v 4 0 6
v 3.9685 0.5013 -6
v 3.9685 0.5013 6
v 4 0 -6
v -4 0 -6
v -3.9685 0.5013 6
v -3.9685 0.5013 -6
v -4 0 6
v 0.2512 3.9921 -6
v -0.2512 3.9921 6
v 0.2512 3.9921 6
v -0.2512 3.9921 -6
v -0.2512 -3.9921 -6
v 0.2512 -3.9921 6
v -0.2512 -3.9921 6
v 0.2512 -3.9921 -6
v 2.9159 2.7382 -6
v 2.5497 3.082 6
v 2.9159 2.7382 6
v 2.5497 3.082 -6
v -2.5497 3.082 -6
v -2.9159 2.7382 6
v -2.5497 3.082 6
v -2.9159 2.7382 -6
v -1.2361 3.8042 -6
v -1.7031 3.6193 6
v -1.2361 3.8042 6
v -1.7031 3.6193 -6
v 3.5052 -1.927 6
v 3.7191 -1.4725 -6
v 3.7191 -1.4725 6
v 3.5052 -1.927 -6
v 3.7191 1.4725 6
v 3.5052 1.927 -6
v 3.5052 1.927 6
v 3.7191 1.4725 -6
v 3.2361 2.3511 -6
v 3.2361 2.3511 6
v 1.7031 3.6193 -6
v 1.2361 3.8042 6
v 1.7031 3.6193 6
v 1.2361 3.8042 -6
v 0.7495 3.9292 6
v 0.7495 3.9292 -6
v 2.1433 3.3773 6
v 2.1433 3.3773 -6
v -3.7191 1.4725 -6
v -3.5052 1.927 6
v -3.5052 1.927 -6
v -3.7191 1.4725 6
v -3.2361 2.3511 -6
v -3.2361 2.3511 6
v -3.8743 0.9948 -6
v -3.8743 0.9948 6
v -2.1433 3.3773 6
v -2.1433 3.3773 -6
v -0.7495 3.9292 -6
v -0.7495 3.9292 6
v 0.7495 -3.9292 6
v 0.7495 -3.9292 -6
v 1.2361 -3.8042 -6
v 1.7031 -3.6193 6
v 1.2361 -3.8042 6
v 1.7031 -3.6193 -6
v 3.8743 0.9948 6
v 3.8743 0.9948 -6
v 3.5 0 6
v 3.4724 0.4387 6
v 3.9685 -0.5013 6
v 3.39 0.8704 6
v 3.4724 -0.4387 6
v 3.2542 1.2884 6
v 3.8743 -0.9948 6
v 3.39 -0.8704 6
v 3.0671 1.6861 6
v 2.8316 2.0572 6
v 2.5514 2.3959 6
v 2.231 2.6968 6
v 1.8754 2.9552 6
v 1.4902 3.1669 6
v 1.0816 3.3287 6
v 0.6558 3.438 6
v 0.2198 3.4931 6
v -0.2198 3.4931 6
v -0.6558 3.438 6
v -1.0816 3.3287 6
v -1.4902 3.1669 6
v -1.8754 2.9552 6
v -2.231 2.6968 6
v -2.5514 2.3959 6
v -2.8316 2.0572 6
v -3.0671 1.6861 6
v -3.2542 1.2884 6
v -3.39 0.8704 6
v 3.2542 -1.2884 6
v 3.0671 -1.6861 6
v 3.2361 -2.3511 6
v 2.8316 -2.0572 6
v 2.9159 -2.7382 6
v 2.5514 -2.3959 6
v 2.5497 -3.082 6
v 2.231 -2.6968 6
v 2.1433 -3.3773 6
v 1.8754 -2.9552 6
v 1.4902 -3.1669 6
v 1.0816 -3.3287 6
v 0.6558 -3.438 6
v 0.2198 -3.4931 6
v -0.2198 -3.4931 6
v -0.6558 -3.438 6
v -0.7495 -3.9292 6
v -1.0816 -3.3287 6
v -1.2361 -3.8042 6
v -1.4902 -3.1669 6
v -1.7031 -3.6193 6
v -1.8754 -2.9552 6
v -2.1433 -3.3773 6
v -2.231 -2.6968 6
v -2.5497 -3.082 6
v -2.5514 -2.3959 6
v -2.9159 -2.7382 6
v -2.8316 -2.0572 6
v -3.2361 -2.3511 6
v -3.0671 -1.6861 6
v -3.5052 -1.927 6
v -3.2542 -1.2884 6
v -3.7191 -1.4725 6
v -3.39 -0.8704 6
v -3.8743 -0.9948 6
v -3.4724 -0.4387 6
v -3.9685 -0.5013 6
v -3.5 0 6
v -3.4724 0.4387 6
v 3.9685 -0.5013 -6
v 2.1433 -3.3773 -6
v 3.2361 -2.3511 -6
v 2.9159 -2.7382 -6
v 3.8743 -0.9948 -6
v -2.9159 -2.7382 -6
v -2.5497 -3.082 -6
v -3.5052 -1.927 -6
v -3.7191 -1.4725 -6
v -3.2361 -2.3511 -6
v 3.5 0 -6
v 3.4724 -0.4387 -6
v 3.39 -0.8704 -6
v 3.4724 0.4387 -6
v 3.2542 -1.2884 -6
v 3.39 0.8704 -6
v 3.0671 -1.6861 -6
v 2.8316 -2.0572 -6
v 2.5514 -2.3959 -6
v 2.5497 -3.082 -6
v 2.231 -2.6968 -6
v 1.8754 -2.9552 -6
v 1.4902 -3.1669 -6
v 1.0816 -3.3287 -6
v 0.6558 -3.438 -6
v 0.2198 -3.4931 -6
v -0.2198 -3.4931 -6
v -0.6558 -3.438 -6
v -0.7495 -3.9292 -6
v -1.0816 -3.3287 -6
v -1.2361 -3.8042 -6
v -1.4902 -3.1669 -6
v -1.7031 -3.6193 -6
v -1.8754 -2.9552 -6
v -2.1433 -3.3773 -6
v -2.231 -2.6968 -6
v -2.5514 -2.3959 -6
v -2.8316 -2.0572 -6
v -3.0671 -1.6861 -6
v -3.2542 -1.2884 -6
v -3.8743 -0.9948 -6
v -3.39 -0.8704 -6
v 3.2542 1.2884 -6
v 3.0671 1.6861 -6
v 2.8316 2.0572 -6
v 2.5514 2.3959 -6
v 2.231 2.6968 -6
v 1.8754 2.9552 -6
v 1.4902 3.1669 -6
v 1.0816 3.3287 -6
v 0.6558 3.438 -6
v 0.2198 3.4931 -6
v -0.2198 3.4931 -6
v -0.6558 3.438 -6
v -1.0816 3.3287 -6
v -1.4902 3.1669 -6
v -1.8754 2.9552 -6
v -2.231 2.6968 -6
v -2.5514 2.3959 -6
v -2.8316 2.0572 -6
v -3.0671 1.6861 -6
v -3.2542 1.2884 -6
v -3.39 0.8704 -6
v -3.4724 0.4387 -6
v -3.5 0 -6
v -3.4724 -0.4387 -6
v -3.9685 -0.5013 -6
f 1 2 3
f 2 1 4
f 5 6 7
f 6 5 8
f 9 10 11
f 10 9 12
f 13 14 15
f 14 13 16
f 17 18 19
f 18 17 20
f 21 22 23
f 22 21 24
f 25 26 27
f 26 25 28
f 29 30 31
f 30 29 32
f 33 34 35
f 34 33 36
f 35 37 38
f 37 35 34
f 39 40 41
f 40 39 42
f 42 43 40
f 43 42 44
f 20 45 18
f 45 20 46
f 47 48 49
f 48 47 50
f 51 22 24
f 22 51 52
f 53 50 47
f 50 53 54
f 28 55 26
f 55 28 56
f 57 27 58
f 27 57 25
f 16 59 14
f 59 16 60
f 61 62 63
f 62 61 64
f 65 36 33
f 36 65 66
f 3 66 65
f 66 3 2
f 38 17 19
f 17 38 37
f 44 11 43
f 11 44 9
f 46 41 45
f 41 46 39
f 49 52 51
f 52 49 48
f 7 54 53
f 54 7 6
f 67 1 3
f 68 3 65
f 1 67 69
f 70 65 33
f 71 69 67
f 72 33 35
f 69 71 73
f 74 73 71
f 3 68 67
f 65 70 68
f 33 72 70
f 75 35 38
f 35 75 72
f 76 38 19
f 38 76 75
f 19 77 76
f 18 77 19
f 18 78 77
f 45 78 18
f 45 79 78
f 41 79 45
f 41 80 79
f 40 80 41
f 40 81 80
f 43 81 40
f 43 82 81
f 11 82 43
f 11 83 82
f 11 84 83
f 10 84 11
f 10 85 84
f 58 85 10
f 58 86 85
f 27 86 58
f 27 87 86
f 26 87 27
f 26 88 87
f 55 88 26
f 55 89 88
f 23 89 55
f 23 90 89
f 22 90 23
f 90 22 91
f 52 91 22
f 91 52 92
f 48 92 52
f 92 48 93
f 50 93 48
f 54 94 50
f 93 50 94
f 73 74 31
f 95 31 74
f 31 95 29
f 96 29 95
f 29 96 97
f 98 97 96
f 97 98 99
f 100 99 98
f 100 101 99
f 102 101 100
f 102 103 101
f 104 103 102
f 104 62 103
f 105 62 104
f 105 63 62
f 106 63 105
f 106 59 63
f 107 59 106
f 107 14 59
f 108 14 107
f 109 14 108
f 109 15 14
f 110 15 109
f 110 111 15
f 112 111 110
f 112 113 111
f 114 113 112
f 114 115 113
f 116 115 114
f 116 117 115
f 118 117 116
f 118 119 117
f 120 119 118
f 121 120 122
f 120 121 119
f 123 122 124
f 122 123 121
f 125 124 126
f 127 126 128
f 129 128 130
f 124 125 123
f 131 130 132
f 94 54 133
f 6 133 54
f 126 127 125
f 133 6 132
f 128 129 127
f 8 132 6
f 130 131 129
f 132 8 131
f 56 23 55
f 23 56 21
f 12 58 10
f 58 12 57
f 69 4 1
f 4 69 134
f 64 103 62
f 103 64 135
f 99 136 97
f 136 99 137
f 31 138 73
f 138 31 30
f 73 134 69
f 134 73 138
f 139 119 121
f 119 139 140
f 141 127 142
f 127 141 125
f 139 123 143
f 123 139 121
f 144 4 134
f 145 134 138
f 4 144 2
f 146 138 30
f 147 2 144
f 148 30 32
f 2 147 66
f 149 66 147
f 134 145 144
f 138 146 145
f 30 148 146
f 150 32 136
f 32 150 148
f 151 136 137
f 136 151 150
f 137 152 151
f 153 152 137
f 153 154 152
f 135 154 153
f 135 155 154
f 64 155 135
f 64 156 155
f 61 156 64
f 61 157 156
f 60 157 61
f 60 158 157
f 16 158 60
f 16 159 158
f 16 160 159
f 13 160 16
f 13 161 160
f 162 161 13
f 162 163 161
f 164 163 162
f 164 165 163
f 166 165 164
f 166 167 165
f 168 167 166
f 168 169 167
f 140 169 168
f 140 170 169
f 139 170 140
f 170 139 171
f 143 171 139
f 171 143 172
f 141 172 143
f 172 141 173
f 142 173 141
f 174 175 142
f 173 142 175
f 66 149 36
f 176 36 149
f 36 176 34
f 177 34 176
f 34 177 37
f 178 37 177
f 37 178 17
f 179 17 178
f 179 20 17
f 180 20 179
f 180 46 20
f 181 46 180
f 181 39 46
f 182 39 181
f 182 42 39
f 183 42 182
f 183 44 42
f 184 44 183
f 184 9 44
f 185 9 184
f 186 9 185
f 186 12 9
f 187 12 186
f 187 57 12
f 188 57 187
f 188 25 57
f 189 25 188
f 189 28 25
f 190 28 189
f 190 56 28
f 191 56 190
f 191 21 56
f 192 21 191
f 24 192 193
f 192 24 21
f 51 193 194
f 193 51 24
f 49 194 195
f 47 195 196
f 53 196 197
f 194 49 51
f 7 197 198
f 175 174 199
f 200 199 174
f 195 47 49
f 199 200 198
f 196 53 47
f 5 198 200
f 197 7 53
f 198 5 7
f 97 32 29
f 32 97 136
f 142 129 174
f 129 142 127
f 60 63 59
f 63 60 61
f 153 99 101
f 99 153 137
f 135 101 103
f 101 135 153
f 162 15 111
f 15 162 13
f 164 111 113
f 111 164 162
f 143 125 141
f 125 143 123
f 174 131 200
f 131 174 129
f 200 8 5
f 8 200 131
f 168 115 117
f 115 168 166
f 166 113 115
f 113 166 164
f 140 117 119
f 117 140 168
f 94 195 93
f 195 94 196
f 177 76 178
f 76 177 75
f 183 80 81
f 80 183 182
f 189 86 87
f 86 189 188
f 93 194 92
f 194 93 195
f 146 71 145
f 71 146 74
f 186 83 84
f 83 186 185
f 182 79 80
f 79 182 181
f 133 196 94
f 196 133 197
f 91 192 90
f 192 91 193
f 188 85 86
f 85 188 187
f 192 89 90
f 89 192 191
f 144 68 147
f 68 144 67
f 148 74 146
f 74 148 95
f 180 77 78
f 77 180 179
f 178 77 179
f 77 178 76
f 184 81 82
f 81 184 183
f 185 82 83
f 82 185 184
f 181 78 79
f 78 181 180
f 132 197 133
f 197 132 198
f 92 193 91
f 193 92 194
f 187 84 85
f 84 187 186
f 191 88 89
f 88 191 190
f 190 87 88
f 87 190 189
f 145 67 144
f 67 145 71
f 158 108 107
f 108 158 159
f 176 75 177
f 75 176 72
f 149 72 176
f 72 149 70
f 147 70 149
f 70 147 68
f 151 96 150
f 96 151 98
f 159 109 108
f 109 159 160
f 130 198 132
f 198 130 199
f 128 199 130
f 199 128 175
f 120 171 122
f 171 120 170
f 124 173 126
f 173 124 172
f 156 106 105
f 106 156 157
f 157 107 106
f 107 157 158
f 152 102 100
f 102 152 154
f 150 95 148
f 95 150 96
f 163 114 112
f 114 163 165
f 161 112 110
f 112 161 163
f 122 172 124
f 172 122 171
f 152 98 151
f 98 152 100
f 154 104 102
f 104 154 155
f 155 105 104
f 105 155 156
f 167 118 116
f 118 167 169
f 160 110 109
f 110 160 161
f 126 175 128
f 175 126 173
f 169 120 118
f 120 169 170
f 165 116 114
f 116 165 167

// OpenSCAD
$fn = 50;


difference() {
	union() {
		translate(v = [0, 0, -6.0000000000]) {
			cylinder(h = 12, r = 4.0000000000);
		}
	}
	union() {
		translate(v = [0, 0, -100.0000000000]) {
			cylinder(h = 200, r = 3.5000000000);
		}
	}
}
